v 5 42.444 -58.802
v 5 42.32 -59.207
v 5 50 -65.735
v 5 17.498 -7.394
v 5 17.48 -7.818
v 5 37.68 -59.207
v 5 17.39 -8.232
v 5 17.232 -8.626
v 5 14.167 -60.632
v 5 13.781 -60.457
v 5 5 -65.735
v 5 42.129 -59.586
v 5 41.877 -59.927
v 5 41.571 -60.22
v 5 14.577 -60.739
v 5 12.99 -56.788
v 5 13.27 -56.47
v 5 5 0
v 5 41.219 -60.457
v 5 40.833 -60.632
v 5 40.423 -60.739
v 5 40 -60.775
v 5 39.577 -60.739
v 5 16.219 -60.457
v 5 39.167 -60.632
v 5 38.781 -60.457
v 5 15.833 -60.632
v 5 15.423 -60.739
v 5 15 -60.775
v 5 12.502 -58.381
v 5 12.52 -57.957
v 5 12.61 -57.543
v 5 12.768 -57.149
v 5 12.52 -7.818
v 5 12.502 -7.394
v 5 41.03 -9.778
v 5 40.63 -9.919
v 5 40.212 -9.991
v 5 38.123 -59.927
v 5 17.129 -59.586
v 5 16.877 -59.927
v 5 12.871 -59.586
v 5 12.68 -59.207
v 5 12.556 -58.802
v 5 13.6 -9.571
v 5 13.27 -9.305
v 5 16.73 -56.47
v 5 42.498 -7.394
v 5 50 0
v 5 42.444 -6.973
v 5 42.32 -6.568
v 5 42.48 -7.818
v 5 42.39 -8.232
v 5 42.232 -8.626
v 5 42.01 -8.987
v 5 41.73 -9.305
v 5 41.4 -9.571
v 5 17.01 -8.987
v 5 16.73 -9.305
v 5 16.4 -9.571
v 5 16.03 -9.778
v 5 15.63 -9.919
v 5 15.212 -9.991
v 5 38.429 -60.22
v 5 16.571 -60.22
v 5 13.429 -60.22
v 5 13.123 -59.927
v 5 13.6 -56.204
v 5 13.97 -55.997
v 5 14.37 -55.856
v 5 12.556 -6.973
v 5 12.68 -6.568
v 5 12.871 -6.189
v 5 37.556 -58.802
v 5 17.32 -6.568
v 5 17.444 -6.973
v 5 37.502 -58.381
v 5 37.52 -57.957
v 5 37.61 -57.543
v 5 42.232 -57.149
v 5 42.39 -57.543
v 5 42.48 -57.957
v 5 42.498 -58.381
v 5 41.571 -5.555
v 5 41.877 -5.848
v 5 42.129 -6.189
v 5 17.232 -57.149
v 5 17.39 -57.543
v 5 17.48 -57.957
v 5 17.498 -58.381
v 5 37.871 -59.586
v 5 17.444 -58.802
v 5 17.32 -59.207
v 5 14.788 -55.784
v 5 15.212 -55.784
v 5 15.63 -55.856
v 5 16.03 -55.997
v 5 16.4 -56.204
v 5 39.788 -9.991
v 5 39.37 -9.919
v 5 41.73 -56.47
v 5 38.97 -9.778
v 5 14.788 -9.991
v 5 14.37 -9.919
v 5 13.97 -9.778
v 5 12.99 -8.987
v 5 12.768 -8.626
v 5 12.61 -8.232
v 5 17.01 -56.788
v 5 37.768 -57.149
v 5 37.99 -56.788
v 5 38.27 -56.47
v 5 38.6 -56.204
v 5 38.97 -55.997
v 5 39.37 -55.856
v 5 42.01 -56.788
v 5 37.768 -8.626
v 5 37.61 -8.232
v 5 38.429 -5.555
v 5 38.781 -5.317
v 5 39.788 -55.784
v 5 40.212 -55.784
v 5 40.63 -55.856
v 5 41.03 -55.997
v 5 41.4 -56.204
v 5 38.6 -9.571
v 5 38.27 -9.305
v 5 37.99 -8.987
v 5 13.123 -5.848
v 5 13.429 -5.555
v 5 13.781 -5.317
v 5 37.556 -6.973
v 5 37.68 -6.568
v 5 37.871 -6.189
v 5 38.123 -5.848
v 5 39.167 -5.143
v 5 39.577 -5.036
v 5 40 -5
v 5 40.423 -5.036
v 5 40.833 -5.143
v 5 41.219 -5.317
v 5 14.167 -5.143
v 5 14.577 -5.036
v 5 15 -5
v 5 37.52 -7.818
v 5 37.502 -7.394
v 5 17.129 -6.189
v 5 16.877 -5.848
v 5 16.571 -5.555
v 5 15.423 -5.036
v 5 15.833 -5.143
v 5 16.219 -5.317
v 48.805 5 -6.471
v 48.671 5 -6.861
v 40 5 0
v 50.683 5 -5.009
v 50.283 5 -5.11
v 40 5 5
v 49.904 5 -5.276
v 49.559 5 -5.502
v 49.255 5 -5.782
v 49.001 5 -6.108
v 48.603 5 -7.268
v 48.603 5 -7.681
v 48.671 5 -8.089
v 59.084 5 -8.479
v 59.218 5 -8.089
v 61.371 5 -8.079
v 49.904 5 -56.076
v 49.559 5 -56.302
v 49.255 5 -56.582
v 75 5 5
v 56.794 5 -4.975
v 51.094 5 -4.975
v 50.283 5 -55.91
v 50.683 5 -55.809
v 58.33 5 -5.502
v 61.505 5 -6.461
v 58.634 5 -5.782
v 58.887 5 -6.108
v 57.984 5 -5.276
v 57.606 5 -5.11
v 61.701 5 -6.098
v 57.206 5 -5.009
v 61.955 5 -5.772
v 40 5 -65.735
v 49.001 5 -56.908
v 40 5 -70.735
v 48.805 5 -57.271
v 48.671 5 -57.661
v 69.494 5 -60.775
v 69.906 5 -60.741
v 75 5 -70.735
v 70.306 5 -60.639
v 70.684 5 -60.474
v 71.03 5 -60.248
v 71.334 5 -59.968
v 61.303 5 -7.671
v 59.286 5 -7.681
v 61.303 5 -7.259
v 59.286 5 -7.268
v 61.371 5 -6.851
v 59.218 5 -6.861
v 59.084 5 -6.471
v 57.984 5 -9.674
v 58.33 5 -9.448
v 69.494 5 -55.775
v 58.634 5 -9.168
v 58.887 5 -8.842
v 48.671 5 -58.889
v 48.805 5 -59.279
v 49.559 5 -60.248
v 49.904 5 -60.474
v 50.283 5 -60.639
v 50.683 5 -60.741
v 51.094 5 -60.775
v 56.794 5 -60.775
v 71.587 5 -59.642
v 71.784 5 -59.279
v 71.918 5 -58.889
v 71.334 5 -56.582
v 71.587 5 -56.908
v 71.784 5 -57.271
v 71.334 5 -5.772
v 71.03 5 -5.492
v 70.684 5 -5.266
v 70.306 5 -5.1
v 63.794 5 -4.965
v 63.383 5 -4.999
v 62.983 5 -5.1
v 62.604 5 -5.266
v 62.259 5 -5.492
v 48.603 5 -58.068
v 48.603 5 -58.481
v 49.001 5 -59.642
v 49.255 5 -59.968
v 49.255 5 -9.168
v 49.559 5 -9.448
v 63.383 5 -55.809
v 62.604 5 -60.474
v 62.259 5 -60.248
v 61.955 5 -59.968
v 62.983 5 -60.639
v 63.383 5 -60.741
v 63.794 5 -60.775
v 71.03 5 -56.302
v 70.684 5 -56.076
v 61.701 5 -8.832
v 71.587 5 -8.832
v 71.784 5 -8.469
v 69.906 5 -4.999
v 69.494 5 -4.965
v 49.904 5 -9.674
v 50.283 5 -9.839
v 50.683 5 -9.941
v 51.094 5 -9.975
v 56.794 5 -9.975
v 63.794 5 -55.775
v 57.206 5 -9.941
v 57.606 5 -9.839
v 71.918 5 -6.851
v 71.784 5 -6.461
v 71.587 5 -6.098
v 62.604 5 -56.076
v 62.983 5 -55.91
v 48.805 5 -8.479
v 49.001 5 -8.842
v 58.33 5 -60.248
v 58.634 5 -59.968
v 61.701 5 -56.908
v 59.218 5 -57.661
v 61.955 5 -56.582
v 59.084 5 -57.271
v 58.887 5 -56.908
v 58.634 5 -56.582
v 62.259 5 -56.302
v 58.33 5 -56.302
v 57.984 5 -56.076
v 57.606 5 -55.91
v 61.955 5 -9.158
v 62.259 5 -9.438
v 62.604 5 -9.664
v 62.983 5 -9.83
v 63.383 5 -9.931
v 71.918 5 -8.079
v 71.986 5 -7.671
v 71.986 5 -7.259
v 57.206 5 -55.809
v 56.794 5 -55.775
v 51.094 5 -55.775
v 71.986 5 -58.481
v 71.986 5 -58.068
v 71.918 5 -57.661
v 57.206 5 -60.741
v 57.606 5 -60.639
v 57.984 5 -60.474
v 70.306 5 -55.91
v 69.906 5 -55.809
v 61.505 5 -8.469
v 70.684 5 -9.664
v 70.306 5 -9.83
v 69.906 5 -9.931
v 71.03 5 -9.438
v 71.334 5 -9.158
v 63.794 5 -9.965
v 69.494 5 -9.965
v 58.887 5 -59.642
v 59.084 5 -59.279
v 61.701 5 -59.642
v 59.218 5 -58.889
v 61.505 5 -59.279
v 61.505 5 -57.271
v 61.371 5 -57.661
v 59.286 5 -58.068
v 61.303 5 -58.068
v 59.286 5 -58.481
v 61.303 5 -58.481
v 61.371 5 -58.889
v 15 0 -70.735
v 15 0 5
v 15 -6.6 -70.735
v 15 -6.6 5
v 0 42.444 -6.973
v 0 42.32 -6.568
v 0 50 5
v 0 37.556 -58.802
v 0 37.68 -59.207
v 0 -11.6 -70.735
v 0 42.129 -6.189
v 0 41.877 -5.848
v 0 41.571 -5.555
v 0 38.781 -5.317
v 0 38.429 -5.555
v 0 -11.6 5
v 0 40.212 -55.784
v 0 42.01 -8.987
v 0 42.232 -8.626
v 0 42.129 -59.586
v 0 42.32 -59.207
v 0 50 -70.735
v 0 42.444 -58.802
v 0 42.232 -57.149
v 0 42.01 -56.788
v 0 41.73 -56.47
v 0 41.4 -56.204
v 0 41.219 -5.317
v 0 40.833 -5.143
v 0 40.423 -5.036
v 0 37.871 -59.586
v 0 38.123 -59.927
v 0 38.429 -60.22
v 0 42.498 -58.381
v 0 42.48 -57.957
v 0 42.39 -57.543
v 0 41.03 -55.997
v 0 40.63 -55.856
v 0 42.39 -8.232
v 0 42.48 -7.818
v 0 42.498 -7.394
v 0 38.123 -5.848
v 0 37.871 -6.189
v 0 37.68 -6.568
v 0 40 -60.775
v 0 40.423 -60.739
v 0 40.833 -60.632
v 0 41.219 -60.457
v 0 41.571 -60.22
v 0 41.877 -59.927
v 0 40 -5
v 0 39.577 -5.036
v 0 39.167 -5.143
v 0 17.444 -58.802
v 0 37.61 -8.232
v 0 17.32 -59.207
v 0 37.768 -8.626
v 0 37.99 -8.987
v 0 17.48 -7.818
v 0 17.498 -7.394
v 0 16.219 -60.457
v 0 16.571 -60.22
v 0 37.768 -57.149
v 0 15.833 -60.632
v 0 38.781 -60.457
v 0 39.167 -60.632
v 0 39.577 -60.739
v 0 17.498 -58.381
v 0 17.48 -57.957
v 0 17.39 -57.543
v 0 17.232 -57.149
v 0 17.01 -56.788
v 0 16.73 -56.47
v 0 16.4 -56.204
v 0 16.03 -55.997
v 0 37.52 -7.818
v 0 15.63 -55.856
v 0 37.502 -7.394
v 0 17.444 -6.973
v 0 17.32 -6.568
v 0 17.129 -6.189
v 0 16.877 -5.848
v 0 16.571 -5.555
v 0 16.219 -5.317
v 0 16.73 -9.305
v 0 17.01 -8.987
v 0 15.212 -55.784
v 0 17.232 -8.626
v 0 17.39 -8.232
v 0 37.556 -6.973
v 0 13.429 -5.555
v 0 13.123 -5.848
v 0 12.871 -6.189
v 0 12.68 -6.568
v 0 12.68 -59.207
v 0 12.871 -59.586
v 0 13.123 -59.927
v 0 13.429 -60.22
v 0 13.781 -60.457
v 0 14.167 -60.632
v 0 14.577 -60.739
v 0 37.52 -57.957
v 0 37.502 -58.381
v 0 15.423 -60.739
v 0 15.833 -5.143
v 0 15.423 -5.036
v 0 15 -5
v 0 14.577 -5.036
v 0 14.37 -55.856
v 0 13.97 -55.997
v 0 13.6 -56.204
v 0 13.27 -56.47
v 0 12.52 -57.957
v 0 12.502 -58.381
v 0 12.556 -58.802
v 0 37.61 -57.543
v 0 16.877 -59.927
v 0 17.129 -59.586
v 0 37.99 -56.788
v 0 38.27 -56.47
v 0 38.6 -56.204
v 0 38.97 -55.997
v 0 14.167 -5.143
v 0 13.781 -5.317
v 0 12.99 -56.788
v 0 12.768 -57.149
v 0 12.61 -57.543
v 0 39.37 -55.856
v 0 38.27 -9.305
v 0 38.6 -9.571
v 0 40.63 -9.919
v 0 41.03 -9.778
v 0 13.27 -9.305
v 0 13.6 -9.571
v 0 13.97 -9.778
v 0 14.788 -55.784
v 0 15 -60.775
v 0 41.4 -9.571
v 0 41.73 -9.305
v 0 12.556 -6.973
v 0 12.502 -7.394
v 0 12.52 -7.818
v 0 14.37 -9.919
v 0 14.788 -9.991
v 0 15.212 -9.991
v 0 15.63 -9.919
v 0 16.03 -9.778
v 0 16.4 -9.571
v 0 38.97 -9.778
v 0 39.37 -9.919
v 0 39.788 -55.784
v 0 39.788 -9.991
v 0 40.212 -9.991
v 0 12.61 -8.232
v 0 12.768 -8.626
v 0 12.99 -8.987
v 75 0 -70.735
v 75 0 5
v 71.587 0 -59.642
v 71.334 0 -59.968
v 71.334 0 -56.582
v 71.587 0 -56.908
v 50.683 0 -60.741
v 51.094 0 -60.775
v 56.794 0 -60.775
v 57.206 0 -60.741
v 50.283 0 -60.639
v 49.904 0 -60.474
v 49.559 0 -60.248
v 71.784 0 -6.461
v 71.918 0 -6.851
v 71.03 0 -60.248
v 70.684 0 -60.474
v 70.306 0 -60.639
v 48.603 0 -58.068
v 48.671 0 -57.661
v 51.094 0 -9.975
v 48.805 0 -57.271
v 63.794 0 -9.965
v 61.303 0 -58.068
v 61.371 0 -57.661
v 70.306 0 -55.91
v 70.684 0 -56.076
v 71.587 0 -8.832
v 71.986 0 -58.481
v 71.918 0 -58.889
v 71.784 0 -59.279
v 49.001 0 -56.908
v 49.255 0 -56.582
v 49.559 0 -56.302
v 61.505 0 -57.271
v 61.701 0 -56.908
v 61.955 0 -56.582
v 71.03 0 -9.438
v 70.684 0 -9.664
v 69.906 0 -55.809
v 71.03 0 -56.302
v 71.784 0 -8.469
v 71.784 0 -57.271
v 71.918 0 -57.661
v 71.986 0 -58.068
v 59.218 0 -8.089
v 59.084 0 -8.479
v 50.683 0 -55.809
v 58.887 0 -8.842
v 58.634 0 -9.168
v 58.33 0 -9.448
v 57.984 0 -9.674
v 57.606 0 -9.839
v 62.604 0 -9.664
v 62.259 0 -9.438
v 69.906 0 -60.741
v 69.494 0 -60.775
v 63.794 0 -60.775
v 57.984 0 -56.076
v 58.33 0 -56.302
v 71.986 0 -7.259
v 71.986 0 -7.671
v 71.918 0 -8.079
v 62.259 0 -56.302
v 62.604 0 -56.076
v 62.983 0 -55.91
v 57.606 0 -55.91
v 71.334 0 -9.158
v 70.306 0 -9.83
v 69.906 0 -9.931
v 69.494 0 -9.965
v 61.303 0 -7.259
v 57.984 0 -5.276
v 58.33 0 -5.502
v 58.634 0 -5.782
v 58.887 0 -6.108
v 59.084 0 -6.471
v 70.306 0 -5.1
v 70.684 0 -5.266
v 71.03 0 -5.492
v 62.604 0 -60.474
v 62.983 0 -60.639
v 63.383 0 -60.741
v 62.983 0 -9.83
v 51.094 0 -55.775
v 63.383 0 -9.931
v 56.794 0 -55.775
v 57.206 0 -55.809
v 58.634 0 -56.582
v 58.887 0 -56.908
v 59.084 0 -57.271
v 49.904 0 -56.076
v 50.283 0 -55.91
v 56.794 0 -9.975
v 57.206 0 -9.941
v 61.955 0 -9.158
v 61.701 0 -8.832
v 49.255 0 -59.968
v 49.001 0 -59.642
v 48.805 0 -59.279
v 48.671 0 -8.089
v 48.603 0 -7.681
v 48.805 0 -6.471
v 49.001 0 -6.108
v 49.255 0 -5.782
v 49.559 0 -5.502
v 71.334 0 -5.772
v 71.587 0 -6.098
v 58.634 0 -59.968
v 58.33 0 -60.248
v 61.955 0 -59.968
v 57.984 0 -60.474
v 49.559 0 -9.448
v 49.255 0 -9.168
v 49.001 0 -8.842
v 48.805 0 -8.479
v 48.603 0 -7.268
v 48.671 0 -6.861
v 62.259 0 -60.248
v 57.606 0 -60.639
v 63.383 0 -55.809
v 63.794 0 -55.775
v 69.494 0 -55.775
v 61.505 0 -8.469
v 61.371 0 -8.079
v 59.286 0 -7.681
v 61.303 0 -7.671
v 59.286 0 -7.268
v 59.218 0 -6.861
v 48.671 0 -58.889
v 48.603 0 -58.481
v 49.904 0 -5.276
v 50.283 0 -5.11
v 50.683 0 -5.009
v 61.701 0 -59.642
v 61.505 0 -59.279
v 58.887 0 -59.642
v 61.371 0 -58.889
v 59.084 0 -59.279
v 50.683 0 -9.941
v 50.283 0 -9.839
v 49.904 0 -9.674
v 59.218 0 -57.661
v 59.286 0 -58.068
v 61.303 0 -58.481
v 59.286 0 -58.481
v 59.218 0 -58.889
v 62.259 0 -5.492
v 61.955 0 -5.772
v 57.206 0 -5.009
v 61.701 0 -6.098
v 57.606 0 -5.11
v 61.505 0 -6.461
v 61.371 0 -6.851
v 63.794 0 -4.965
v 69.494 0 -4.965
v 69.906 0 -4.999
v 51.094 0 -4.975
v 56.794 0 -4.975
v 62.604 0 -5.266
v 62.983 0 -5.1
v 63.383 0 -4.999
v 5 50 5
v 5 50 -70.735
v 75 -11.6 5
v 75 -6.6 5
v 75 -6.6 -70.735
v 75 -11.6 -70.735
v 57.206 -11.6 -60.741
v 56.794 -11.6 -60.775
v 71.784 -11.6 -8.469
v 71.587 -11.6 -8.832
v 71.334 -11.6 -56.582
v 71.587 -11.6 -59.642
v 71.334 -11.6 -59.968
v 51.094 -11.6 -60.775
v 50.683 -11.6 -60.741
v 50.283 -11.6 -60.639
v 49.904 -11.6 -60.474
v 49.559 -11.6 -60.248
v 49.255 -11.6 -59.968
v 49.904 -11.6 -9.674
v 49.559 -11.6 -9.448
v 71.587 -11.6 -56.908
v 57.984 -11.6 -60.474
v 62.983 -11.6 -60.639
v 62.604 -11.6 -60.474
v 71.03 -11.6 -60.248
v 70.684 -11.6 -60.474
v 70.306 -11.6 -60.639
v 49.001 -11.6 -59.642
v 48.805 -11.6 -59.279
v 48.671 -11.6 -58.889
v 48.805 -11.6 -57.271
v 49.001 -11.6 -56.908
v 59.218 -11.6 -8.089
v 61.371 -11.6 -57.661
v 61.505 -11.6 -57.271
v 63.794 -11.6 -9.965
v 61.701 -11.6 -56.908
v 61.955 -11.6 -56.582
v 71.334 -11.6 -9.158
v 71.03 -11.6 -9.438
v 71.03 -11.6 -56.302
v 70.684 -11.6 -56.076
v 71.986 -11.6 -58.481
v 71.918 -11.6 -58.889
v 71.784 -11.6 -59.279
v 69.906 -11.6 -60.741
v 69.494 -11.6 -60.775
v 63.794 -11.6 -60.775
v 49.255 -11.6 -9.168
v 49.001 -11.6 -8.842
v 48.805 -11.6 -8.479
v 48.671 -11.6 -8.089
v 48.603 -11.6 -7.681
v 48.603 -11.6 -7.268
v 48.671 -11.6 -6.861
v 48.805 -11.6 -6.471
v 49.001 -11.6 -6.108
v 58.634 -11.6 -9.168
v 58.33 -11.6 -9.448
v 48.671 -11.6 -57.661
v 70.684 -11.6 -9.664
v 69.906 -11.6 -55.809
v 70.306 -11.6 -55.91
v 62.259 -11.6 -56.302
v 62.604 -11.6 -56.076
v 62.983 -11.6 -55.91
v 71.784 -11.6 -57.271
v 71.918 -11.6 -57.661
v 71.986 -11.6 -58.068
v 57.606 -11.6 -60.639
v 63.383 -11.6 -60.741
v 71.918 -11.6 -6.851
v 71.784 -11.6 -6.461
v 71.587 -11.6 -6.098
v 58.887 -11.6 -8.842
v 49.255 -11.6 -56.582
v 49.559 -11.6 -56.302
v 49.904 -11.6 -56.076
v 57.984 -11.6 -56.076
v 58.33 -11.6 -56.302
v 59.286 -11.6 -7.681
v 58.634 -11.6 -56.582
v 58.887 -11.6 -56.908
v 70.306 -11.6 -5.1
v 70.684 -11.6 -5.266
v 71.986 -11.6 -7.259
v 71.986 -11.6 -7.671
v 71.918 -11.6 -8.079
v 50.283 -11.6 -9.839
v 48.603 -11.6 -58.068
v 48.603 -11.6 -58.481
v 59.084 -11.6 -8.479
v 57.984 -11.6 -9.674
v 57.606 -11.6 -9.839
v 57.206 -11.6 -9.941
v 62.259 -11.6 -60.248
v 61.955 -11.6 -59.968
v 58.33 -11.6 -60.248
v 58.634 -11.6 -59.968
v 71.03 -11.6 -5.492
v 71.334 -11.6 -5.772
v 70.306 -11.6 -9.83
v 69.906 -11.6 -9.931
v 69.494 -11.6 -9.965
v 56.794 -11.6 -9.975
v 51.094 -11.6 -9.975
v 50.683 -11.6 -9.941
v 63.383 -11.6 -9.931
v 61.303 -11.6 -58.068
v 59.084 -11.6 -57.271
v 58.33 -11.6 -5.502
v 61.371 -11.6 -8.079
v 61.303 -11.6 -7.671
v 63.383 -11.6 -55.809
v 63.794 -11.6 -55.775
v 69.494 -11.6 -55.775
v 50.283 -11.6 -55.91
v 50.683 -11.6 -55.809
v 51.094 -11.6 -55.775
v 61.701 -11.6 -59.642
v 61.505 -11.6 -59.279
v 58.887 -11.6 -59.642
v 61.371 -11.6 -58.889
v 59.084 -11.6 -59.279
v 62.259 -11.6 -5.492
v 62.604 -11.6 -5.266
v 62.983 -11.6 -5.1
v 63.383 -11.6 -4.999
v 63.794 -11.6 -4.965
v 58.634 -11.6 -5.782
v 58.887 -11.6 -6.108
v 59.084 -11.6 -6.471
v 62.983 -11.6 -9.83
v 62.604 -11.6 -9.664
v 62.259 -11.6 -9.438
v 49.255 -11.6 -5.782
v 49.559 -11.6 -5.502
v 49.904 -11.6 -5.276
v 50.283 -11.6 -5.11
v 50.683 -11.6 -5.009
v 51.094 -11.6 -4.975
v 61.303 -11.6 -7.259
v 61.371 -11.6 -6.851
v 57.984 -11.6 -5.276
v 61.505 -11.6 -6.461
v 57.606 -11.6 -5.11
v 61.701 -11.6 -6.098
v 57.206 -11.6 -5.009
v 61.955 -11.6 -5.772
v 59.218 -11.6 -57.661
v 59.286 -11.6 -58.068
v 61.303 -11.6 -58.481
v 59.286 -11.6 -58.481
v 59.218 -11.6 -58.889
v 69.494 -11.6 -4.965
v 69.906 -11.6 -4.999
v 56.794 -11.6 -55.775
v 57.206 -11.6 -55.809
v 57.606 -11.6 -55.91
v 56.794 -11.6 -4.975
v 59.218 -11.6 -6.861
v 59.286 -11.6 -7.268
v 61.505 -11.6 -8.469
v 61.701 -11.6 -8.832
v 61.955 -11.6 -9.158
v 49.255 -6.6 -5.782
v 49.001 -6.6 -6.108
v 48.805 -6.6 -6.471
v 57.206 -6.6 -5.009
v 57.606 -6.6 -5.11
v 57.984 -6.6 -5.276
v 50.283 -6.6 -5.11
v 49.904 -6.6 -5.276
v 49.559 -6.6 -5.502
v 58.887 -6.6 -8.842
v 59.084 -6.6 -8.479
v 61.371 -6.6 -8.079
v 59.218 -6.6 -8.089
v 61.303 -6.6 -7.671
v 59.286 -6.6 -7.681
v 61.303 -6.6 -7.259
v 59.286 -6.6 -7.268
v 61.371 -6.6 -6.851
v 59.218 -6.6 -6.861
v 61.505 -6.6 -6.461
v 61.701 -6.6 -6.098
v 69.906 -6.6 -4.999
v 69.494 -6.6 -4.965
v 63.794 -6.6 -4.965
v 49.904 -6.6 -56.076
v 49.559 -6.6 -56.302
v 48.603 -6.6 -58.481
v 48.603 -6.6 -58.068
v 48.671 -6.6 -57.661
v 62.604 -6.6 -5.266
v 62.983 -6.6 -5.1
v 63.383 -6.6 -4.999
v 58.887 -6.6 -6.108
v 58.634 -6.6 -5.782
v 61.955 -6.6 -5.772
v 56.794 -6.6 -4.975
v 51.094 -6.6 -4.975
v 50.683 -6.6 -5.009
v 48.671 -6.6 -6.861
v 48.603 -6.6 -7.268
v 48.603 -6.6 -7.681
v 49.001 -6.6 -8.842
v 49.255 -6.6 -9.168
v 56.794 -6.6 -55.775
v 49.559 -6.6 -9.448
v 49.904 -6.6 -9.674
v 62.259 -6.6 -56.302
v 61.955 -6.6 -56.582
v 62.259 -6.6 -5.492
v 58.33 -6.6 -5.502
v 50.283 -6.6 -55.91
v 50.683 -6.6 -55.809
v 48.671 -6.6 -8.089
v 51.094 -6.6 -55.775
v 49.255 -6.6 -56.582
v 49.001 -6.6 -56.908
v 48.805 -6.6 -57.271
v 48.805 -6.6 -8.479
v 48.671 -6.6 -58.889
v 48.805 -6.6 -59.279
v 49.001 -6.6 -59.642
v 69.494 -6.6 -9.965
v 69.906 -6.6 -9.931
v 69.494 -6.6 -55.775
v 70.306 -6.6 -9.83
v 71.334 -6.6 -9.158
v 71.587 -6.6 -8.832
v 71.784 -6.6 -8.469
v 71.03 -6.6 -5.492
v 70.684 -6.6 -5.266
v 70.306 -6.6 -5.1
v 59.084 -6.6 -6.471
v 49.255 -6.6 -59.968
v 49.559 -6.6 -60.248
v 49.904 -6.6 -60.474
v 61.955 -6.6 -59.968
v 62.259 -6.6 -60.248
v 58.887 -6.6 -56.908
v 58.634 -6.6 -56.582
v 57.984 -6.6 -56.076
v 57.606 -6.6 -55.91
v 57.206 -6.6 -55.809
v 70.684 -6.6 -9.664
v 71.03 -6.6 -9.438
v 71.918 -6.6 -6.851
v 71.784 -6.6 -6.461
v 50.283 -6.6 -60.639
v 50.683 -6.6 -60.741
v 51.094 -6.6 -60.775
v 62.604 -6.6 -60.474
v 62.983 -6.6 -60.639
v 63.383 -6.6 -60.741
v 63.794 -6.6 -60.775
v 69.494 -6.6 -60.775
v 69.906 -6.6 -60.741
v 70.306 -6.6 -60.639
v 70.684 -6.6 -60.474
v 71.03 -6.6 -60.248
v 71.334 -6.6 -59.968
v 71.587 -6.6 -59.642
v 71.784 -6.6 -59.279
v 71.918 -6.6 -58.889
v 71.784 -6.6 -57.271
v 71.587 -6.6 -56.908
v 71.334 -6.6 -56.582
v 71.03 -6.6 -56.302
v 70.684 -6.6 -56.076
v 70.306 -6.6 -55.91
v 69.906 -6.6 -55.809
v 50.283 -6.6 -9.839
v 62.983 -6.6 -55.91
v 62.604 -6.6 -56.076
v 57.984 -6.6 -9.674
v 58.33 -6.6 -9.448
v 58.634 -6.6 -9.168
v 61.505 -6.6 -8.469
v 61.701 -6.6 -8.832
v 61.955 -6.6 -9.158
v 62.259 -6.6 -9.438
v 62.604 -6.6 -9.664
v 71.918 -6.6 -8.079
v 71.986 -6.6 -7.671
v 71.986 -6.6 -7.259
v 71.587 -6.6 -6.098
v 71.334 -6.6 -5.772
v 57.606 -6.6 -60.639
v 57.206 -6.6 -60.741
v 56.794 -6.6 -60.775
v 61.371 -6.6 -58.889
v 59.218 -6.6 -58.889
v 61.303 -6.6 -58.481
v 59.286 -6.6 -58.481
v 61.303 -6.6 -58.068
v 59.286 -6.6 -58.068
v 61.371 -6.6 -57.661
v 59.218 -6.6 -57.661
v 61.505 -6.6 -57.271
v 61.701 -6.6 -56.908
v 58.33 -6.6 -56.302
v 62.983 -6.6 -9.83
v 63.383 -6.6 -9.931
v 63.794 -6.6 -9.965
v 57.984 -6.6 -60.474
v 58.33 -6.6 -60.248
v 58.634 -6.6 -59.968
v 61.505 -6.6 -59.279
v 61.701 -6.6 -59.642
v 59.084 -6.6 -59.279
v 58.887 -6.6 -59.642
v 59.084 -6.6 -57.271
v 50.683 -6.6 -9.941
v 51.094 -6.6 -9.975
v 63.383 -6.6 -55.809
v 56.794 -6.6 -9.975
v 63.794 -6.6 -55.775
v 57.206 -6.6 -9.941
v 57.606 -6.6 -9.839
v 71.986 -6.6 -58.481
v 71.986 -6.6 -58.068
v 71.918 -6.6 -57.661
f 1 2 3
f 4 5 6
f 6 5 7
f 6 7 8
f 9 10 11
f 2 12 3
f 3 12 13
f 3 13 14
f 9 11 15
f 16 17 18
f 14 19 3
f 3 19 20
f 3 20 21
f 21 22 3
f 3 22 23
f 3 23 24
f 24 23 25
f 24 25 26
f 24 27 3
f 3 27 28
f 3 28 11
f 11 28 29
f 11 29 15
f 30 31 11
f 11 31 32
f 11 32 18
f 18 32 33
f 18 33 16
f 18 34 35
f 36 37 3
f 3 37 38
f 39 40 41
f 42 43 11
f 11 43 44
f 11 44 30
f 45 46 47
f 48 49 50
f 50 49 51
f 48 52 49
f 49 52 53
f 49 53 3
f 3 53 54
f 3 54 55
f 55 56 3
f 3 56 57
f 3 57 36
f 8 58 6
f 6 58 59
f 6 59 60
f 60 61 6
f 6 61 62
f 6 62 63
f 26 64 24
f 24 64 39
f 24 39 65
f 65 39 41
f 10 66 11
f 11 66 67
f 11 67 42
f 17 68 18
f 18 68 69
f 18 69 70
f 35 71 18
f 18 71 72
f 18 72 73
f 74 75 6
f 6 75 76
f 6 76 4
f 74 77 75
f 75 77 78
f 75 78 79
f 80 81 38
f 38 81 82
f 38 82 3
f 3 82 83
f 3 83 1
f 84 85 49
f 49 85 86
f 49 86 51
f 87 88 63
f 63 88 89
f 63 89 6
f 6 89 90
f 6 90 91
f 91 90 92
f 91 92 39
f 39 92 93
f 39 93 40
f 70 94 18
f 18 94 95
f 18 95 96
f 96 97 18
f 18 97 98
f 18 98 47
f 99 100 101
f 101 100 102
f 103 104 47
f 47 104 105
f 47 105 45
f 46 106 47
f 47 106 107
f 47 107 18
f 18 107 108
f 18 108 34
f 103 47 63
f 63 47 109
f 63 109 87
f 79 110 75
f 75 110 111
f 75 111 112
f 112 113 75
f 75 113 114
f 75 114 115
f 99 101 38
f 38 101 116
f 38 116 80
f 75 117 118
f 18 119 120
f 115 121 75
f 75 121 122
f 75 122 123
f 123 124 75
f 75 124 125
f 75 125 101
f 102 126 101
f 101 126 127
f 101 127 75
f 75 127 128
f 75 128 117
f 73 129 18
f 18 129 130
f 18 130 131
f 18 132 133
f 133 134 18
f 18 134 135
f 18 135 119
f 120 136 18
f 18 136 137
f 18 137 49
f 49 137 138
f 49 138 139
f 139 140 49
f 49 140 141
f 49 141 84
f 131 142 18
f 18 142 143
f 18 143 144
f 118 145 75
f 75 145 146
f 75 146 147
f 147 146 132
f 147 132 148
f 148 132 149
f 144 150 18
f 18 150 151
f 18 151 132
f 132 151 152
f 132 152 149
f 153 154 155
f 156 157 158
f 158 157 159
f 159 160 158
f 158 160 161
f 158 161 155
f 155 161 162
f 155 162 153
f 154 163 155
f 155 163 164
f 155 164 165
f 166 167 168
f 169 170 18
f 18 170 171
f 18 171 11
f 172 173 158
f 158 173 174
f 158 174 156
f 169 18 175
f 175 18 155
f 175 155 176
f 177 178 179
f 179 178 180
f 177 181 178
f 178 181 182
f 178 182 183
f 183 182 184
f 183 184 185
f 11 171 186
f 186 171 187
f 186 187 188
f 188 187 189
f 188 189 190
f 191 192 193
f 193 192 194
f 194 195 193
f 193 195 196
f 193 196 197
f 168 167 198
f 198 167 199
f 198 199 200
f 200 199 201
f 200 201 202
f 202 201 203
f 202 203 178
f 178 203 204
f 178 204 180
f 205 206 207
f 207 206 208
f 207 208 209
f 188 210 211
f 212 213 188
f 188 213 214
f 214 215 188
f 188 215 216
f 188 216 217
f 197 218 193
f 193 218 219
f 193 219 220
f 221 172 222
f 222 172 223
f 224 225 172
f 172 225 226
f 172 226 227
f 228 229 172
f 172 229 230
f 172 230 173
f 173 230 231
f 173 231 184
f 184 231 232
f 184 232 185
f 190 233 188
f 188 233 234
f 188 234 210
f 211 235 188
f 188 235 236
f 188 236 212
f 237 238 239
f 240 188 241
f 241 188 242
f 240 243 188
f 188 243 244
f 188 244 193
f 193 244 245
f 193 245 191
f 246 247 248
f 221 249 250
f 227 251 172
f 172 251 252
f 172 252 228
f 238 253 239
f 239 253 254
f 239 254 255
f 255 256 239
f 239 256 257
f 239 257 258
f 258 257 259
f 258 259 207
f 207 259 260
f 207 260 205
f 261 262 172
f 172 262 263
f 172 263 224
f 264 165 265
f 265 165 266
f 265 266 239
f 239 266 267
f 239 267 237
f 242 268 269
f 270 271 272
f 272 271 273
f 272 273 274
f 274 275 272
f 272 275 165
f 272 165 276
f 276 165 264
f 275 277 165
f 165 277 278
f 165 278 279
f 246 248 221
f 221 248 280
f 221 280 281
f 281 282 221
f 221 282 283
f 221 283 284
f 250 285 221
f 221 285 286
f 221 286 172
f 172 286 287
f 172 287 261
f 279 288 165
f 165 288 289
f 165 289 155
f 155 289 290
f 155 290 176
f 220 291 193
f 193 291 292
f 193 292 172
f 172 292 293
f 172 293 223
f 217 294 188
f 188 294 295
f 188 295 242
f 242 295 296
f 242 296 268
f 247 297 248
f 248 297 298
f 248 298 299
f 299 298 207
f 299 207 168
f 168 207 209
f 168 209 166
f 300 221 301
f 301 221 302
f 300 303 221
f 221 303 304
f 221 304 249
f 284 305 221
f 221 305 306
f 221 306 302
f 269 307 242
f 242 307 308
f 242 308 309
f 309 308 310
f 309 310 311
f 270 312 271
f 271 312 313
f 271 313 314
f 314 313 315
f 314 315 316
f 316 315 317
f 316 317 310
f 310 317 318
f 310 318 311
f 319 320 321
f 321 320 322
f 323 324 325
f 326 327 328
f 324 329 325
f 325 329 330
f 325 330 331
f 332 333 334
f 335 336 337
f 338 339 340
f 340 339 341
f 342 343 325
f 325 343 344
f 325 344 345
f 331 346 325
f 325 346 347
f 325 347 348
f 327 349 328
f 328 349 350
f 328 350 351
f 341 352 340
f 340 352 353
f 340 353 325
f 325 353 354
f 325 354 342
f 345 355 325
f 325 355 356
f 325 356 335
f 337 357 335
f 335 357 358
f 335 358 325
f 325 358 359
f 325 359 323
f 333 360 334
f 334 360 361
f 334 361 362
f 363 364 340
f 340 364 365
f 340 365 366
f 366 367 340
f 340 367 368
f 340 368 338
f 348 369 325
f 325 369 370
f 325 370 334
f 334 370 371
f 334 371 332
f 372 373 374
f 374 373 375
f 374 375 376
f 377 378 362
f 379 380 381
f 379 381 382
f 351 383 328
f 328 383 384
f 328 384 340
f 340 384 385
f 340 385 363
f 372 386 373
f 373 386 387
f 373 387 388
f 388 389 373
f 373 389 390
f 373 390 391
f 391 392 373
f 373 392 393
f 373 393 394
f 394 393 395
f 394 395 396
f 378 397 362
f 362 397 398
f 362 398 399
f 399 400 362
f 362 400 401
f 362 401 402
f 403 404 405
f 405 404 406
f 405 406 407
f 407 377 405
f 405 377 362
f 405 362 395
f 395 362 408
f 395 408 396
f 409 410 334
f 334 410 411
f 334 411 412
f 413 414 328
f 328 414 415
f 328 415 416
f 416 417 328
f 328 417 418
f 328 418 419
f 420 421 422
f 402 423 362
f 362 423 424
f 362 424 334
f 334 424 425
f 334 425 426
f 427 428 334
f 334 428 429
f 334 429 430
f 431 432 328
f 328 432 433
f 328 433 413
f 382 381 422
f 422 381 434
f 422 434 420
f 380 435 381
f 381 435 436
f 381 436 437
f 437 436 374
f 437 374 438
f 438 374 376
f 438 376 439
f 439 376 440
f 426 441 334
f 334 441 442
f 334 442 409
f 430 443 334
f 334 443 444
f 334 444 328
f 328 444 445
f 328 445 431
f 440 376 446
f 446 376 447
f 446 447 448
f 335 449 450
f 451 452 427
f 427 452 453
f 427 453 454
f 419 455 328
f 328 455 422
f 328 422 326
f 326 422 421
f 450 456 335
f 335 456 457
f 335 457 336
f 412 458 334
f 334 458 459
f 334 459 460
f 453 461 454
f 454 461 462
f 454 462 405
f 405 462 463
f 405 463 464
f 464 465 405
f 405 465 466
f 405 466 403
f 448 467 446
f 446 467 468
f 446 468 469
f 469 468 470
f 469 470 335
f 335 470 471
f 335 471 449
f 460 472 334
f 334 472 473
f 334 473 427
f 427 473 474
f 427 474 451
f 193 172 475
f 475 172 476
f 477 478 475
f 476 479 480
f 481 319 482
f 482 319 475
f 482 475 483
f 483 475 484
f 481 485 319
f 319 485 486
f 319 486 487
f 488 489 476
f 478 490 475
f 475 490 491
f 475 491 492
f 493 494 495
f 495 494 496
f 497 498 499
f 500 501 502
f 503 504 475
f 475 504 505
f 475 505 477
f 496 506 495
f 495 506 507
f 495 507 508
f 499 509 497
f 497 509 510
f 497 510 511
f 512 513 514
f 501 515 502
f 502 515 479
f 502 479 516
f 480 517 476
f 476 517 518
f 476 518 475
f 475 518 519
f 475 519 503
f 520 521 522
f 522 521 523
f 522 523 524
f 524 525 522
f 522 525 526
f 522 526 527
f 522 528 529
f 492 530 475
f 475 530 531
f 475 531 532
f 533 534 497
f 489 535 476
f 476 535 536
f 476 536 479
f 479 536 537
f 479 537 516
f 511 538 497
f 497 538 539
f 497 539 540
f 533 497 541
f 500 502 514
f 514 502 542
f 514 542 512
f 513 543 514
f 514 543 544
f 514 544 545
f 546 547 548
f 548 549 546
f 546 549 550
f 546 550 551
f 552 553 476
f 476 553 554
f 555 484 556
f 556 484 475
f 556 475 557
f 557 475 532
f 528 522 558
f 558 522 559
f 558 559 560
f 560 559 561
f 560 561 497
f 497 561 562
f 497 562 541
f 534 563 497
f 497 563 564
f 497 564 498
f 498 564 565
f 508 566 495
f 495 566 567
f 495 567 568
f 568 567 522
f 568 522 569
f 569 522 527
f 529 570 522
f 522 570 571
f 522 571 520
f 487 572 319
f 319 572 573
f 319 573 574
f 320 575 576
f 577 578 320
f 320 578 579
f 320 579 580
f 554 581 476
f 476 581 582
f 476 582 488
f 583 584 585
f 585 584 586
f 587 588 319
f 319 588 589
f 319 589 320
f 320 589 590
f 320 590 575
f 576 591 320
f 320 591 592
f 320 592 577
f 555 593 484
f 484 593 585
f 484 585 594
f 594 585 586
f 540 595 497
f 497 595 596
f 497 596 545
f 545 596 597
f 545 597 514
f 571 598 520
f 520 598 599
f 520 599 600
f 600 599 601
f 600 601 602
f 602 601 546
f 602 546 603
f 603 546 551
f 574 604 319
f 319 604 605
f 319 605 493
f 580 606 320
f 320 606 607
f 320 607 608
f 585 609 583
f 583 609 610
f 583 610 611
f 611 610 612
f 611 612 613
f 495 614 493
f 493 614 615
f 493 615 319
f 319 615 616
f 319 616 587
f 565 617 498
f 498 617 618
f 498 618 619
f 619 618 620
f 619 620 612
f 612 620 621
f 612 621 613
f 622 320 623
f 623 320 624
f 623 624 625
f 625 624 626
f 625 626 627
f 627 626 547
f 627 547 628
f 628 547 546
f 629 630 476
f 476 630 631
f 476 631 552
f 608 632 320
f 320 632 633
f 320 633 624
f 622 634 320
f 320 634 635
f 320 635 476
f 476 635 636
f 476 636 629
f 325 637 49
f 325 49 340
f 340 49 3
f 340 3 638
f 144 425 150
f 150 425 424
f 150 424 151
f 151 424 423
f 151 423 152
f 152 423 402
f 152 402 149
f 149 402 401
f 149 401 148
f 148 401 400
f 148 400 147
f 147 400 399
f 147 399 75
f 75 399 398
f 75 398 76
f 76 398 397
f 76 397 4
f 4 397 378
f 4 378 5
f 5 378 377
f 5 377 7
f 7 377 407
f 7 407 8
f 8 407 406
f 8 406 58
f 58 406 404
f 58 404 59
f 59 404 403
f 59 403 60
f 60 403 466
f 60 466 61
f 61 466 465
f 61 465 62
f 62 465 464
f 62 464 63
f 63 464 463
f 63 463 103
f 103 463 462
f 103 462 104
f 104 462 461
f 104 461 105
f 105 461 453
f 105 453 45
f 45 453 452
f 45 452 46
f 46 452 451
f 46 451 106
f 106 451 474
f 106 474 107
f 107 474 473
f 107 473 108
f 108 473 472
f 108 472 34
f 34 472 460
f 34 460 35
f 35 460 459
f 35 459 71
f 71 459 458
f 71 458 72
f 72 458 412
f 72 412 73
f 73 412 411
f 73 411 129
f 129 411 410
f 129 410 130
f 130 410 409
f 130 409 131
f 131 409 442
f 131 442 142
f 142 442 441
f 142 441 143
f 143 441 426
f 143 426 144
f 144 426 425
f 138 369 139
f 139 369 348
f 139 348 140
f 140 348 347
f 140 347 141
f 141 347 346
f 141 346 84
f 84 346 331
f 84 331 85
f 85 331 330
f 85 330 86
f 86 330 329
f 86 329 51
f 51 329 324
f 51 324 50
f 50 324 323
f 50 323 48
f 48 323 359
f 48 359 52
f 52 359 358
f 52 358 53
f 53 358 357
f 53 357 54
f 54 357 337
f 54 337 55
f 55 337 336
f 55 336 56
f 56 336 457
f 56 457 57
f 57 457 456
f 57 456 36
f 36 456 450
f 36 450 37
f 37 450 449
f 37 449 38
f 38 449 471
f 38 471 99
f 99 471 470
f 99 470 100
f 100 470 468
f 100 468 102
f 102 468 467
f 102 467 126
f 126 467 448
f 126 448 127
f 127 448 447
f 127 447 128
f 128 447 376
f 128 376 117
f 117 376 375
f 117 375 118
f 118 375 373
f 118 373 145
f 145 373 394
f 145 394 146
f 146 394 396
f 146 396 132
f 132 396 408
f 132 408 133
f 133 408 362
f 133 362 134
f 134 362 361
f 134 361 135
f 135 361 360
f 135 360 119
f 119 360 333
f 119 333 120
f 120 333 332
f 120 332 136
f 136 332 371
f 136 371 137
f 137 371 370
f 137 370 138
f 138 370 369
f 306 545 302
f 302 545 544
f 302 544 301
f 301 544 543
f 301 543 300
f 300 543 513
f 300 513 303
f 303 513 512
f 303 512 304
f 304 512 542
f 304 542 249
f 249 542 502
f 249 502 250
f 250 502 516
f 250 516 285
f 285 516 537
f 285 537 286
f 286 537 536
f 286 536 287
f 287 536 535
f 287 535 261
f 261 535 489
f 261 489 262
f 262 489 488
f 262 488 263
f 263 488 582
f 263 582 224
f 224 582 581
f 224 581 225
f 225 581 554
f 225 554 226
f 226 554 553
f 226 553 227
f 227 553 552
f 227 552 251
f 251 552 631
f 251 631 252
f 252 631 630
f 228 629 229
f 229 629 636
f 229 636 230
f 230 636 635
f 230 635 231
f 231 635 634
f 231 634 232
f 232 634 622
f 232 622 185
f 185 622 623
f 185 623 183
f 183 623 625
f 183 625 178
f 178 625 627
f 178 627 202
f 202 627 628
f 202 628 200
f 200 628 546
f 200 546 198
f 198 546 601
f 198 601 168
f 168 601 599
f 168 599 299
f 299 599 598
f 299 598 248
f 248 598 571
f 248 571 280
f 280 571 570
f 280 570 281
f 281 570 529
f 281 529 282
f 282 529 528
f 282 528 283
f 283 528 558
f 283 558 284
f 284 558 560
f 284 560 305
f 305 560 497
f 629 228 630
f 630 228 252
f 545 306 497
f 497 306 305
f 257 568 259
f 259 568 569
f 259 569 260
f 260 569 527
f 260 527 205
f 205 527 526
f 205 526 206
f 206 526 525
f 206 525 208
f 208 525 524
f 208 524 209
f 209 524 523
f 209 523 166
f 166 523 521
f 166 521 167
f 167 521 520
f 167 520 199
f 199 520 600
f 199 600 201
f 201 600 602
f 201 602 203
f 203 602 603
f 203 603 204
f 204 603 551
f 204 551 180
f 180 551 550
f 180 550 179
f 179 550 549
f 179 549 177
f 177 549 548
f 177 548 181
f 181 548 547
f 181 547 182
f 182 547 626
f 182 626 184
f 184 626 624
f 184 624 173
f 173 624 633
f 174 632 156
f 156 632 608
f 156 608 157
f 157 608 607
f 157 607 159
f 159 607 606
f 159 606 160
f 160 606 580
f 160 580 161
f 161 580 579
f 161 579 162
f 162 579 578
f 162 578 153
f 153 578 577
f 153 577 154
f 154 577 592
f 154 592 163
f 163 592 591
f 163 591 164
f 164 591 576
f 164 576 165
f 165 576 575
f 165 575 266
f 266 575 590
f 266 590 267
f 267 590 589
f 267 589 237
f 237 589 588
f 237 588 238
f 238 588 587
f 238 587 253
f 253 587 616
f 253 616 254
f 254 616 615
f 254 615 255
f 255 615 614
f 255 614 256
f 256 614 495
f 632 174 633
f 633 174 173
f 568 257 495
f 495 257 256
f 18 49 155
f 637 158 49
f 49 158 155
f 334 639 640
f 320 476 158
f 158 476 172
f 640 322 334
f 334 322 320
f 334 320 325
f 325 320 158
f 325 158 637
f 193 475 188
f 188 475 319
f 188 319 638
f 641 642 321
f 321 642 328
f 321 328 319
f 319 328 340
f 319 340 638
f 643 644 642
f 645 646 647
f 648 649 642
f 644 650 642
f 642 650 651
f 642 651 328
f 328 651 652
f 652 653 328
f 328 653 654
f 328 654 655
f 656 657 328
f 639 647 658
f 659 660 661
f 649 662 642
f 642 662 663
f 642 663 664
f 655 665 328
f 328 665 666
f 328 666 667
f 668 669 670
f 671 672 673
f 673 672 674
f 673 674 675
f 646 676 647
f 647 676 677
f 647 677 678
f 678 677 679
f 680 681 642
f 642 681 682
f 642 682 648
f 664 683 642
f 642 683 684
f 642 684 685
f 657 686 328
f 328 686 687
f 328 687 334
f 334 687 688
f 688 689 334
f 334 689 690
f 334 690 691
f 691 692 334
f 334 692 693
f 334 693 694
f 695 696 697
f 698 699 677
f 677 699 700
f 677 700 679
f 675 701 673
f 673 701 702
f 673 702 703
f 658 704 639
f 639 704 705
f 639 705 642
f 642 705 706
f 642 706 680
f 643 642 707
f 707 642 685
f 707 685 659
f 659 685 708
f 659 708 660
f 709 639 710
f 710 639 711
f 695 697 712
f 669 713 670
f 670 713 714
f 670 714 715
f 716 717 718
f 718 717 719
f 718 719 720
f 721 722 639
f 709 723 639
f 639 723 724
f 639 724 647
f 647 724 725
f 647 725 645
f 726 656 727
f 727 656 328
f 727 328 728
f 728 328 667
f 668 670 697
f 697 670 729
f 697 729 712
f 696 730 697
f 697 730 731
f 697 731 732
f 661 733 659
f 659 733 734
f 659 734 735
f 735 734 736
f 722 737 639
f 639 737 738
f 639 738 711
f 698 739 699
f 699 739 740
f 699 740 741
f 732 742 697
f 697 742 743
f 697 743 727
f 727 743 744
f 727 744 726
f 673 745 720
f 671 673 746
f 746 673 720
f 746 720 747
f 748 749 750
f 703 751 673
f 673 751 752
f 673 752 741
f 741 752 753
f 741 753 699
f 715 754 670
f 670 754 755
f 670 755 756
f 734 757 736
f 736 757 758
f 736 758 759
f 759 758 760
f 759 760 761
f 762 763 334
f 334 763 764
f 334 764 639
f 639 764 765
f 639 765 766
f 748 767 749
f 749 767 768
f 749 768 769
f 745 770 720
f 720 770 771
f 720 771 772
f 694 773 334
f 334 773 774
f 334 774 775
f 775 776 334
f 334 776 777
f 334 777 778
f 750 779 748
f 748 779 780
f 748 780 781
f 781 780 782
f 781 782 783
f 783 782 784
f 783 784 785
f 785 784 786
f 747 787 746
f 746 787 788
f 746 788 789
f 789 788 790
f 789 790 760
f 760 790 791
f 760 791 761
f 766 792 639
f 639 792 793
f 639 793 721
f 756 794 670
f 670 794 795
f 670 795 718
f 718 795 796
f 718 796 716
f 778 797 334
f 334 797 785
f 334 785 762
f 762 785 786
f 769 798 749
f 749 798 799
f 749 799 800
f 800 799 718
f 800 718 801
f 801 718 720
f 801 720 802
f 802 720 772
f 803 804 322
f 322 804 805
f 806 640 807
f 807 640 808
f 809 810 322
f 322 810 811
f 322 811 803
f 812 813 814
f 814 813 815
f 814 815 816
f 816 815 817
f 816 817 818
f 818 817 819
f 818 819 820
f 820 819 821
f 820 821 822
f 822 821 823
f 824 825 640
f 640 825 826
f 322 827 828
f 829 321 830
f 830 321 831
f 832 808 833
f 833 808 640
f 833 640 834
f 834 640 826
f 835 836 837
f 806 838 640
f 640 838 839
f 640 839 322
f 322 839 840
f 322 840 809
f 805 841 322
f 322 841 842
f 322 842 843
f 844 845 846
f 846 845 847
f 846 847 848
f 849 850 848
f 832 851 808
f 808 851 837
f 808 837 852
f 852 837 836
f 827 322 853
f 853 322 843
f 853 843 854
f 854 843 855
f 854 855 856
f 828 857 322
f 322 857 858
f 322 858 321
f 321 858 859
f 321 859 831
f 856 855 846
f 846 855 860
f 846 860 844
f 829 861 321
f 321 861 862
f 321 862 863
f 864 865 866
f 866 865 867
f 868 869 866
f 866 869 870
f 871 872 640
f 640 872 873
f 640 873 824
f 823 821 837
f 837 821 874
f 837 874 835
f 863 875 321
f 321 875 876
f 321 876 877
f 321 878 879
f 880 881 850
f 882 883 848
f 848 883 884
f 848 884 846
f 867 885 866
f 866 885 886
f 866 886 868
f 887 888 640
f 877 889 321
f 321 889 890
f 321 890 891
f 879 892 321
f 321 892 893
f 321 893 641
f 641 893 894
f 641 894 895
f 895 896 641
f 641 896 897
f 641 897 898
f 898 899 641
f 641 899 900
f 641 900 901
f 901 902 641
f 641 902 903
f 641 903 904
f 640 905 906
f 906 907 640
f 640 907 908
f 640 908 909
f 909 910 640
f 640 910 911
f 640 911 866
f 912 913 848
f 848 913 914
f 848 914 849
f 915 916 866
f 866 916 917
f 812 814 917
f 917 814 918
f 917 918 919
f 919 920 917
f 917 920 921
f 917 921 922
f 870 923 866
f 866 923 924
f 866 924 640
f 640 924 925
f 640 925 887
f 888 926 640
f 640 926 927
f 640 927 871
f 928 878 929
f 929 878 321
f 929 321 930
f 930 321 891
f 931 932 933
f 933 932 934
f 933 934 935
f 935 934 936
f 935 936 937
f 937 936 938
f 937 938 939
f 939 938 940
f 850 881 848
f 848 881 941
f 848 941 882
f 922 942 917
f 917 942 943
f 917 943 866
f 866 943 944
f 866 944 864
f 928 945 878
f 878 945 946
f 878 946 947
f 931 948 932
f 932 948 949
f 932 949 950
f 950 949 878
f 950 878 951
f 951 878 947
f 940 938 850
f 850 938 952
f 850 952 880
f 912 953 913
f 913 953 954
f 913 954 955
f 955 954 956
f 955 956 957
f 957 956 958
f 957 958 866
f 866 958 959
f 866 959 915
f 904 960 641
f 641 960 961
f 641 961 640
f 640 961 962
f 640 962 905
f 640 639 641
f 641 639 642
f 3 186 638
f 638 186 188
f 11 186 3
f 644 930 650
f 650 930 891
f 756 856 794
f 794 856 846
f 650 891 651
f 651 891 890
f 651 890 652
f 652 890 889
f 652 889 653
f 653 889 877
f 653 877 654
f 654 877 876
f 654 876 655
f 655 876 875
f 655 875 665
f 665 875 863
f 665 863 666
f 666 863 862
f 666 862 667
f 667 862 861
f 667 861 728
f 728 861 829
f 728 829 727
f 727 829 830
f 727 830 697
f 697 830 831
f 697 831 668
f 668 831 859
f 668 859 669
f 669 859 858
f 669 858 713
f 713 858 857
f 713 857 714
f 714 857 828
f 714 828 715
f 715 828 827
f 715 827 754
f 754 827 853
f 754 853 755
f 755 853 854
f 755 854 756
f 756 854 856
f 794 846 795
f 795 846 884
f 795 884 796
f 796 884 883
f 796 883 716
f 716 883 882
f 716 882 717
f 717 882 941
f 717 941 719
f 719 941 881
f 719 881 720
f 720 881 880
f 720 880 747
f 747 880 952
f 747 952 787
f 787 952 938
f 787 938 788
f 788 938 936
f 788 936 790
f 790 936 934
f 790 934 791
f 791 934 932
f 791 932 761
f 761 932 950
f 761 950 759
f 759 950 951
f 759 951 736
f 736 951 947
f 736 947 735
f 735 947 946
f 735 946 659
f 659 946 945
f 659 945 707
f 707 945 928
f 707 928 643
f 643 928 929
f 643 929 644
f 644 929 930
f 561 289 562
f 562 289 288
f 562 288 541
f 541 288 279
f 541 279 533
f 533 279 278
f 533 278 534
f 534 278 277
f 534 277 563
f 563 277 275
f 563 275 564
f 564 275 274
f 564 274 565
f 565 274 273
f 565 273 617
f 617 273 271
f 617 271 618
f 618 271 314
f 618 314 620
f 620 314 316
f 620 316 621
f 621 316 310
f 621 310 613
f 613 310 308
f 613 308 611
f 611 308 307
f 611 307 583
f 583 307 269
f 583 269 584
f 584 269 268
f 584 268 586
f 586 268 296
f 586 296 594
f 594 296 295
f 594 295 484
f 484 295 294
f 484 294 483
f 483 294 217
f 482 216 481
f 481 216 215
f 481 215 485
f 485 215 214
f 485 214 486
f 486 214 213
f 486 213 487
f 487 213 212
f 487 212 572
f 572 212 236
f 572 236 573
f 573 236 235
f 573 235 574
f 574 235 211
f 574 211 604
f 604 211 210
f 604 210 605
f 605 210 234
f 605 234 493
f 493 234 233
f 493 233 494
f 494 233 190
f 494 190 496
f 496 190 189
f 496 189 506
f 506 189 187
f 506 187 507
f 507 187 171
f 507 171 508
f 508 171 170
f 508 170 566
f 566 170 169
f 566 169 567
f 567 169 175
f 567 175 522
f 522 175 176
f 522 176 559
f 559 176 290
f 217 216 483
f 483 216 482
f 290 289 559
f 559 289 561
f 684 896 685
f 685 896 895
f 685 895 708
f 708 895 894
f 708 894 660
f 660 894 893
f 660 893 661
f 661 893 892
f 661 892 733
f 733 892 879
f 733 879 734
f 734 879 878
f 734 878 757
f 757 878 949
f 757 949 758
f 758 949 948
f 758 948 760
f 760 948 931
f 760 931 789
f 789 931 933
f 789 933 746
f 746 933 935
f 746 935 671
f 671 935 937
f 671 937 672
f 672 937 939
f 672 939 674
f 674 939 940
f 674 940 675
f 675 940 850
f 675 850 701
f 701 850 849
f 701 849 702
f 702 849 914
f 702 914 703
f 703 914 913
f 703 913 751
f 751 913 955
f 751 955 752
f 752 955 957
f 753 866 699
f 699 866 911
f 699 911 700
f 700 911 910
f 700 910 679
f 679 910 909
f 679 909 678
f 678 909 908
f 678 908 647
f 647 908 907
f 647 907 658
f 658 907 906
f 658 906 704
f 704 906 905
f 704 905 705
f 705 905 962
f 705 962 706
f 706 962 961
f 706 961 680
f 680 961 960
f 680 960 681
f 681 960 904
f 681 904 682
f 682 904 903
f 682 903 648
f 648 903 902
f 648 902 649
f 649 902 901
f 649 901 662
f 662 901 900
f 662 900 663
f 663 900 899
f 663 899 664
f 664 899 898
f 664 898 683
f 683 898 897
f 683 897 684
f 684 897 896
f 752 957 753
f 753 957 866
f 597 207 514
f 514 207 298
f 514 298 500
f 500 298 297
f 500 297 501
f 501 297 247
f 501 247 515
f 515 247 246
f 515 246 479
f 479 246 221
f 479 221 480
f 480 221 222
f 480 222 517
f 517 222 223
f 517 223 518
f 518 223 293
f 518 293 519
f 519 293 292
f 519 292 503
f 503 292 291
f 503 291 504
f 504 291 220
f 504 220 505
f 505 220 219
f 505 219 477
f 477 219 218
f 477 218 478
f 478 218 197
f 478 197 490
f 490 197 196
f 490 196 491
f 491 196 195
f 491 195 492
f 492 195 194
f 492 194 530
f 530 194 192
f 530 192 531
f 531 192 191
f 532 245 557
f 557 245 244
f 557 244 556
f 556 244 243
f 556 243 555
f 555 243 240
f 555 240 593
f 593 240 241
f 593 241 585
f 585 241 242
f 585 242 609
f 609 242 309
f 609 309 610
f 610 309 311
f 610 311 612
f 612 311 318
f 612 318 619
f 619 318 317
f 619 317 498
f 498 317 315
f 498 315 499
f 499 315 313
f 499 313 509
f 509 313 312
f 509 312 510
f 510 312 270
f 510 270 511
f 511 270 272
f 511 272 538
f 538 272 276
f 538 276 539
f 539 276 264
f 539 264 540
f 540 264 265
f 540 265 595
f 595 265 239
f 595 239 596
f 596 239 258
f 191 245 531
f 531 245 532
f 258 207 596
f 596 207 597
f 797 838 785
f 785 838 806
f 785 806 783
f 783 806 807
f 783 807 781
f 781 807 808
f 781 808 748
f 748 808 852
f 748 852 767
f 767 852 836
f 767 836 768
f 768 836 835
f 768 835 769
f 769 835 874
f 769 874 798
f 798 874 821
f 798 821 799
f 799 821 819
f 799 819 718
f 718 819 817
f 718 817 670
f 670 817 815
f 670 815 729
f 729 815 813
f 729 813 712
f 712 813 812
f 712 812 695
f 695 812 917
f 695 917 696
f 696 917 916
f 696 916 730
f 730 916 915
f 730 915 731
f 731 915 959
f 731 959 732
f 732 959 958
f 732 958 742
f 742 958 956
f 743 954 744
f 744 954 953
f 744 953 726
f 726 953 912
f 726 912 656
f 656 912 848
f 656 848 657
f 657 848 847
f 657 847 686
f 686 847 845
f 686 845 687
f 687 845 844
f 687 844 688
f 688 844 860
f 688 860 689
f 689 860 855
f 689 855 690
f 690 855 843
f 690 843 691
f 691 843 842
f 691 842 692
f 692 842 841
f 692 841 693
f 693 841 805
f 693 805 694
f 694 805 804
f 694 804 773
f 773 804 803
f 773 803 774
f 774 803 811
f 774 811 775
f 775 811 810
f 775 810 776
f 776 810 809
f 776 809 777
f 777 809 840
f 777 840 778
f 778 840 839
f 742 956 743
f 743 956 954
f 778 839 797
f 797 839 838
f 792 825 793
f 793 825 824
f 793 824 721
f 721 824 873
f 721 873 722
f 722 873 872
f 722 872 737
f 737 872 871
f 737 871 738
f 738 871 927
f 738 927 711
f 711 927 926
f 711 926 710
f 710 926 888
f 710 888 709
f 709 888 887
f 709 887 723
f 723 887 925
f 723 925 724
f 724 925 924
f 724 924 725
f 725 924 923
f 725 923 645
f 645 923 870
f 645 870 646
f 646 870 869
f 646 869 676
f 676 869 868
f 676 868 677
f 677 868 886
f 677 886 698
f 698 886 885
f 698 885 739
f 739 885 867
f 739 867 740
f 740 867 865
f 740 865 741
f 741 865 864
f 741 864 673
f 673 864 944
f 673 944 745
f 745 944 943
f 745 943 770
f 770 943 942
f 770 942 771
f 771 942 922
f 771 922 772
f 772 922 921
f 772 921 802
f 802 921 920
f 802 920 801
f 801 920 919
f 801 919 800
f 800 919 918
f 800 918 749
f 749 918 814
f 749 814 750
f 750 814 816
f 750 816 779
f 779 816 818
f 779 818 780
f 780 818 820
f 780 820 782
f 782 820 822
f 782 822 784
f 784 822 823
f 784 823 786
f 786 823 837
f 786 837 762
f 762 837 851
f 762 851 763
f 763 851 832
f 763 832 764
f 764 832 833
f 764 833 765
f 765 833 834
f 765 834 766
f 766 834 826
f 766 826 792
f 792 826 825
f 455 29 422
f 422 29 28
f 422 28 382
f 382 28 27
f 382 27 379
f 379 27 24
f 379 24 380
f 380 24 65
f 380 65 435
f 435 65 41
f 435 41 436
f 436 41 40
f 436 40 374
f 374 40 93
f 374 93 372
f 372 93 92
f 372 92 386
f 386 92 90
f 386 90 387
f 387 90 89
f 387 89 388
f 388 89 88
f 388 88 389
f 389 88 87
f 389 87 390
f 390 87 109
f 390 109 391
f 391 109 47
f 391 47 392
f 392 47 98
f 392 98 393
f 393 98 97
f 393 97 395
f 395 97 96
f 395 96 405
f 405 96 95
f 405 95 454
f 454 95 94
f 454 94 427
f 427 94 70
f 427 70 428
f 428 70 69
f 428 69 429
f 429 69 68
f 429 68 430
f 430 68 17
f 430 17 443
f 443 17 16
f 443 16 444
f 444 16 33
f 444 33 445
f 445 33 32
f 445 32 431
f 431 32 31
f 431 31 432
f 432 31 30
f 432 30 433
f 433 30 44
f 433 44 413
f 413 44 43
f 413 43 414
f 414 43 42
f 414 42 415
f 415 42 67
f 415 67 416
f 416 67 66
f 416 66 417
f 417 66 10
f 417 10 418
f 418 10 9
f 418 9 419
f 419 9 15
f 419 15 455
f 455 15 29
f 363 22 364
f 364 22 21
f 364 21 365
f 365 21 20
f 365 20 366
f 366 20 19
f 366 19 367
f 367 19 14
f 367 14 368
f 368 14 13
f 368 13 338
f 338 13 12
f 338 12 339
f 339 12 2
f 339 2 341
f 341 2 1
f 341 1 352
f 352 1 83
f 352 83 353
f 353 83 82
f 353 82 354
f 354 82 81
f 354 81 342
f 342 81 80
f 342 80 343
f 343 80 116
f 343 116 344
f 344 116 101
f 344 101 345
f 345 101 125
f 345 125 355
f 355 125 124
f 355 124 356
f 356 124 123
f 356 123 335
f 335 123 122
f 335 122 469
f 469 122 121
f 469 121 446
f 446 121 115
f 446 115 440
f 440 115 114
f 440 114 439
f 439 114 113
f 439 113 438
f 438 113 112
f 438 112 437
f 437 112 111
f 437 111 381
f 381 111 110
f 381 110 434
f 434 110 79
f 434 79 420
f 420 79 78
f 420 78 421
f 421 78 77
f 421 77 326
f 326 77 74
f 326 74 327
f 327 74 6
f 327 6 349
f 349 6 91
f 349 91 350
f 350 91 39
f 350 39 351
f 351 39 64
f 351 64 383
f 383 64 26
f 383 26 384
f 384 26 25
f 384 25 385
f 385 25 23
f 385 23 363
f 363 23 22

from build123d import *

# Parameters (mm, degrees)
SKETCH1_W                 = 75
SKETCH1_H                 = 15
BOSS_EXTRUDE1_DEPTH       = 5
SKETCH2_W                 = 5
SKETCH2_H                 = 15
BOSS_EXTRUDE2_DEPTH       = 45
F_5_0MM_DOWEL_HOLE1_D     = 5
F_6_0MM_DOWEL_SLOT1_DEPTH = 5
BOSS_EXTRUDE3_DEPTH       = 5
BOSS_EXTRUDE7_DEPTH       = 46.8
BOSS_EXTRUDE11_DEPTH      = 8.935003
SKETCH29_W                = 15
SKETCH29_H                = 75.73500344
BOSS_EXTRUDE12_DEPTH      = 11.6
SKETCH30_W                = 75.73500344
SKETCH30_H                = 5
BOSS_EXTRUDE13_DEPTH      = 60
BOSS_EXTRUDE14_DEPTH      = 5
F_5_0MM_START             = -11.6
F_5_0MM_DOWEL_SLOT2_DEPTH = 16.6
F_5_0MM_DOWEL_SLOT3_DEPTH = 5
F_5_0MM_DOWEL_HOLE2_D     = 5


# Read off the part's stored shape, not the designer's step: Ø6.0mm Dowel Slot1, Ø5.0mm Dowel Slot2, Ø5.0mm Dowel Slot3
with BuildPart() as part:
    # Sketch1 → Boss-Extrude1 (new body)
    with BuildSketch(Plane(origin=(0, 0, 0), x_dir=(1, 0, 0), z_dir=(0, 1, 0))):
        with Locations((37.5, 7.5)):
            Rectangle(SKETCH1_W, SKETCH1_H)
    extrude(amount=BOSS_EXTRUDE1_DEPTH)

    # Sketch2 → Boss-Extrude2 (add)
    with BuildSketch(Plane(origin=(0, 5, 0), x_dir=(1, 0, 0), z_dir=(0, 1, 0))):
        with Locations((2.5, 7.5)):
            Rectangle(SKETCH2_W, SKETCH2_H)
    extrude(amount=BOSS_EXTRUDE2_DEPTH)

    # Ø5.0mm Dowel Hole1 (through all)
    with Locations(Plane.ZY):
        with Locations((-7.5, 40), (-7.5, 15)):
            Hole(F_5_0MM_DOWEL_HOLE1_D / 2)

    # Ø6.0mm Dowel Slot1 outline → Ø6.0mm Dowel Slot1 (cut)
    with BuildSketch(Plane(origin=(0, 0, 0), x_dir=(1, 0, 0), z_dir=(0, 1, 0))):
        with BuildLine():
            ThreePointArc((69.494344615, 4.96500344), (71.994344615, 7.46500344), (69.494344615, 9.96500344))
            Line((69.494344615, 9.96500344), (63.794344615, 9.96500344))
            ThreePointArc((63.794344615, 9.96500344), (61.294344615, 7.46500344), (63.794344615, 4.96500344))
            Line((63.794344615, 4.96500344), (69.494344615, 4.96500344))
        make_face()
        with BuildLine():
            ThreePointArc((56.794348468, 4.974895546), (59.294348468, 7.474895546), (56.794348468, 9.974895546))
            Line((56.794348468, 9.974895546), (51.094348468, 9.974895546))
            ThreePointArc((51.094348468, 9.974895546), (48.594348468, 7.474895546), (51.094348468, 4.974895546))
            Line((51.094348468, 4.974895546), (56.794348468, 4.974895546))
        make_face()
    extrude(amount=F_6_0MM_DOWEL_SLOT1_DEPTH, mode=Mode.SUBTRACT)

    # Sketch10 → Boss-Extrude3 (add)
    with BuildSketch(Plane.XY):
        Polygon((5, 50), (40, 5), (75, 5), (75, 0), (0, 0), (0, 50), align=None)
    extrude(amount=BOSS_EXTRUDE3_DEPTH)

    # Sketch21 → Boss-Extrude7 (add)
    with BuildSketch(Plane(origin=(0, 0, -15), x_dir=(-1, 0, 0), z_dir=(0, 0, -1))):
        Polygon((-75, 5), (-5, 5), (-5, 50), (0, 50), (0, 0), (-75, 0), align=None)
    extrude(amount=BOSS_EXTRUDE7_DEPTH)

    # Sketch22 → Boss-Extrude11 (add)
    with BuildSketch(Plane(origin=(0, 0, -61.8), x_dir=(-1, 0, 0), z_dir=(0, 0, -1))):
        Polygon((-75, 5), (-40, 5), (-5, 5), (-5, 50), (0, 50), (0, 0), (-75, 0), align=None)
    extrude(amount=BOSS_EXTRUDE11_DEPTH)

    # Sketch29 → Boss-Extrude12 (add)
    with BuildSketch(Plane.XZ):
        with Locations((7.5, -32.86750172)):
            Rectangle(SKETCH29_W, SKETCH29_H)
    extrude(amount=BOSS_EXTRUDE12_DEPTH)

    # Sketch30 → Boss-Extrude13 (add)
    with BuildSketch(Plane(origin=(15, 0, 0), x_dir=(0, 0, -1), z_dir=(1, 0, 0))):
        with Locations((32.86750172, -9.1)):
            Rectangle(SKETCH30_W, SKETCH30_H)
    extrude(amount=BOSS_EXTRUDE13_DEPTH)

    # Sketch31 → Boss-Extrude14 (add)
    with BuildSketch(Plane(origin=(0, 0, -70.73500344), x_dir=(-1, 0, 0), z_dir=(0, 0, -1))):
        Polygon((-5, 50), (-40, 5), (-5, 5), align=None)
    extrude(amount=-BOSS_EXTRUDE14_DEPTH)

    # Ø5.0mm Dowel Slot2 outline → Ø5.0mm Dowel Slot2 (cut)
    with BuildSketch(Plane(origin=(0, 0, 0), x_dir=(1, 0, 0), z_dir=(0, 1, 0)).offset(F_5_0MM_START)):
        with BuildLine():
            ThreePointArc((56.794348468, 55.774895546), (59.294348468, 58.274895546), (56.794348468, 60.774895546))
            Line((56.794348468, 60.774895546), (51.094348468, 60.774895546))
            ThreePointArc((51.094348468, 60.774895546), (48.594348468, 58.274895546), (51.094348468, 55.774895546))
            Line((51.094348468, 55.774895546), (56.794348468, 55.774895546))
        make_face()
        with BuildLine():
            ThreePointArc((69.494348468, 55.774895546), (71.994348468, 58.274895546), (69.494348468, 60.774895546))
            Line((69.494348468, 60.774895546), (63.794348468, 60.774895546))
            ThreePointArc((63.794348468, 60.774895546), (61.294348468, 58.274895546), (63.794348468, 55.774895546))
            Line((63.794348468, 55.774895546), (69.494348468, 55.774895546))
        make_face()
    extrude(amount=F_5_0MM_DOWEL_SLOT2_DEPTH, mode=Mode.SUBTRACT)

    # Ø5.0mm Dowel Slot3 outline → Ø5.0mm Dowel Slot3 (cut)
    with BuildSketch(Plane(origin=(0, 0, 0), x_dir=(1, 0, 0), z_dir=(0, 1, 0)).offset(F_5_0MM_START)):
        with BuildLine():
            Line((63.794344615, 4.96500344), (69.494344615, 4.96500344))
            ThreePointArc((69.494344615, 4.96500344), (71.994344615, 7.46500344), (69.494344615, 9.96500344))
            Line((69.494344615, 9.96500344), (63.794344615, 9.96500344))
            ThreePointArc((63.794344615, 9.96500344), (61.294344615, 7.46500344), (63.794344615, 4.96500344))
        make_face()
        with BuildLine():
            Line((51.094348468, 4.974895546), (56.794348468, 4.974895546))
            ThreePointArc((56.794348468, 4.974895546), (59.294348468, 7.474895546), (56.794348468, 9.974895546))
            Line((56.794348468, 9.974895546), (51.094348468, 9.974895546))
            ThreePointArc((51.094348468, 9.974895546), (48.594348468, 7.474895546), (51.094348468, 4.974895546))
        make_face()
    extrude(amount=F_5_0MM_DOWEL_SLOT3_DEPTH, mode=Mode.SUBTRACT)

    # Ø5.0mm Dowel Hole2 (through all)
    with Locations(Plane(origin=(5, 0, 0), x_dir=(0, 0, -1), z_dir=(1, 0, 0))):
        with Locations((58.274895546, 40), (58.274895546, 15)):
            Hole(F_5_0MM_DOWEL_HOLE2_D / 2)


solid = part.part
